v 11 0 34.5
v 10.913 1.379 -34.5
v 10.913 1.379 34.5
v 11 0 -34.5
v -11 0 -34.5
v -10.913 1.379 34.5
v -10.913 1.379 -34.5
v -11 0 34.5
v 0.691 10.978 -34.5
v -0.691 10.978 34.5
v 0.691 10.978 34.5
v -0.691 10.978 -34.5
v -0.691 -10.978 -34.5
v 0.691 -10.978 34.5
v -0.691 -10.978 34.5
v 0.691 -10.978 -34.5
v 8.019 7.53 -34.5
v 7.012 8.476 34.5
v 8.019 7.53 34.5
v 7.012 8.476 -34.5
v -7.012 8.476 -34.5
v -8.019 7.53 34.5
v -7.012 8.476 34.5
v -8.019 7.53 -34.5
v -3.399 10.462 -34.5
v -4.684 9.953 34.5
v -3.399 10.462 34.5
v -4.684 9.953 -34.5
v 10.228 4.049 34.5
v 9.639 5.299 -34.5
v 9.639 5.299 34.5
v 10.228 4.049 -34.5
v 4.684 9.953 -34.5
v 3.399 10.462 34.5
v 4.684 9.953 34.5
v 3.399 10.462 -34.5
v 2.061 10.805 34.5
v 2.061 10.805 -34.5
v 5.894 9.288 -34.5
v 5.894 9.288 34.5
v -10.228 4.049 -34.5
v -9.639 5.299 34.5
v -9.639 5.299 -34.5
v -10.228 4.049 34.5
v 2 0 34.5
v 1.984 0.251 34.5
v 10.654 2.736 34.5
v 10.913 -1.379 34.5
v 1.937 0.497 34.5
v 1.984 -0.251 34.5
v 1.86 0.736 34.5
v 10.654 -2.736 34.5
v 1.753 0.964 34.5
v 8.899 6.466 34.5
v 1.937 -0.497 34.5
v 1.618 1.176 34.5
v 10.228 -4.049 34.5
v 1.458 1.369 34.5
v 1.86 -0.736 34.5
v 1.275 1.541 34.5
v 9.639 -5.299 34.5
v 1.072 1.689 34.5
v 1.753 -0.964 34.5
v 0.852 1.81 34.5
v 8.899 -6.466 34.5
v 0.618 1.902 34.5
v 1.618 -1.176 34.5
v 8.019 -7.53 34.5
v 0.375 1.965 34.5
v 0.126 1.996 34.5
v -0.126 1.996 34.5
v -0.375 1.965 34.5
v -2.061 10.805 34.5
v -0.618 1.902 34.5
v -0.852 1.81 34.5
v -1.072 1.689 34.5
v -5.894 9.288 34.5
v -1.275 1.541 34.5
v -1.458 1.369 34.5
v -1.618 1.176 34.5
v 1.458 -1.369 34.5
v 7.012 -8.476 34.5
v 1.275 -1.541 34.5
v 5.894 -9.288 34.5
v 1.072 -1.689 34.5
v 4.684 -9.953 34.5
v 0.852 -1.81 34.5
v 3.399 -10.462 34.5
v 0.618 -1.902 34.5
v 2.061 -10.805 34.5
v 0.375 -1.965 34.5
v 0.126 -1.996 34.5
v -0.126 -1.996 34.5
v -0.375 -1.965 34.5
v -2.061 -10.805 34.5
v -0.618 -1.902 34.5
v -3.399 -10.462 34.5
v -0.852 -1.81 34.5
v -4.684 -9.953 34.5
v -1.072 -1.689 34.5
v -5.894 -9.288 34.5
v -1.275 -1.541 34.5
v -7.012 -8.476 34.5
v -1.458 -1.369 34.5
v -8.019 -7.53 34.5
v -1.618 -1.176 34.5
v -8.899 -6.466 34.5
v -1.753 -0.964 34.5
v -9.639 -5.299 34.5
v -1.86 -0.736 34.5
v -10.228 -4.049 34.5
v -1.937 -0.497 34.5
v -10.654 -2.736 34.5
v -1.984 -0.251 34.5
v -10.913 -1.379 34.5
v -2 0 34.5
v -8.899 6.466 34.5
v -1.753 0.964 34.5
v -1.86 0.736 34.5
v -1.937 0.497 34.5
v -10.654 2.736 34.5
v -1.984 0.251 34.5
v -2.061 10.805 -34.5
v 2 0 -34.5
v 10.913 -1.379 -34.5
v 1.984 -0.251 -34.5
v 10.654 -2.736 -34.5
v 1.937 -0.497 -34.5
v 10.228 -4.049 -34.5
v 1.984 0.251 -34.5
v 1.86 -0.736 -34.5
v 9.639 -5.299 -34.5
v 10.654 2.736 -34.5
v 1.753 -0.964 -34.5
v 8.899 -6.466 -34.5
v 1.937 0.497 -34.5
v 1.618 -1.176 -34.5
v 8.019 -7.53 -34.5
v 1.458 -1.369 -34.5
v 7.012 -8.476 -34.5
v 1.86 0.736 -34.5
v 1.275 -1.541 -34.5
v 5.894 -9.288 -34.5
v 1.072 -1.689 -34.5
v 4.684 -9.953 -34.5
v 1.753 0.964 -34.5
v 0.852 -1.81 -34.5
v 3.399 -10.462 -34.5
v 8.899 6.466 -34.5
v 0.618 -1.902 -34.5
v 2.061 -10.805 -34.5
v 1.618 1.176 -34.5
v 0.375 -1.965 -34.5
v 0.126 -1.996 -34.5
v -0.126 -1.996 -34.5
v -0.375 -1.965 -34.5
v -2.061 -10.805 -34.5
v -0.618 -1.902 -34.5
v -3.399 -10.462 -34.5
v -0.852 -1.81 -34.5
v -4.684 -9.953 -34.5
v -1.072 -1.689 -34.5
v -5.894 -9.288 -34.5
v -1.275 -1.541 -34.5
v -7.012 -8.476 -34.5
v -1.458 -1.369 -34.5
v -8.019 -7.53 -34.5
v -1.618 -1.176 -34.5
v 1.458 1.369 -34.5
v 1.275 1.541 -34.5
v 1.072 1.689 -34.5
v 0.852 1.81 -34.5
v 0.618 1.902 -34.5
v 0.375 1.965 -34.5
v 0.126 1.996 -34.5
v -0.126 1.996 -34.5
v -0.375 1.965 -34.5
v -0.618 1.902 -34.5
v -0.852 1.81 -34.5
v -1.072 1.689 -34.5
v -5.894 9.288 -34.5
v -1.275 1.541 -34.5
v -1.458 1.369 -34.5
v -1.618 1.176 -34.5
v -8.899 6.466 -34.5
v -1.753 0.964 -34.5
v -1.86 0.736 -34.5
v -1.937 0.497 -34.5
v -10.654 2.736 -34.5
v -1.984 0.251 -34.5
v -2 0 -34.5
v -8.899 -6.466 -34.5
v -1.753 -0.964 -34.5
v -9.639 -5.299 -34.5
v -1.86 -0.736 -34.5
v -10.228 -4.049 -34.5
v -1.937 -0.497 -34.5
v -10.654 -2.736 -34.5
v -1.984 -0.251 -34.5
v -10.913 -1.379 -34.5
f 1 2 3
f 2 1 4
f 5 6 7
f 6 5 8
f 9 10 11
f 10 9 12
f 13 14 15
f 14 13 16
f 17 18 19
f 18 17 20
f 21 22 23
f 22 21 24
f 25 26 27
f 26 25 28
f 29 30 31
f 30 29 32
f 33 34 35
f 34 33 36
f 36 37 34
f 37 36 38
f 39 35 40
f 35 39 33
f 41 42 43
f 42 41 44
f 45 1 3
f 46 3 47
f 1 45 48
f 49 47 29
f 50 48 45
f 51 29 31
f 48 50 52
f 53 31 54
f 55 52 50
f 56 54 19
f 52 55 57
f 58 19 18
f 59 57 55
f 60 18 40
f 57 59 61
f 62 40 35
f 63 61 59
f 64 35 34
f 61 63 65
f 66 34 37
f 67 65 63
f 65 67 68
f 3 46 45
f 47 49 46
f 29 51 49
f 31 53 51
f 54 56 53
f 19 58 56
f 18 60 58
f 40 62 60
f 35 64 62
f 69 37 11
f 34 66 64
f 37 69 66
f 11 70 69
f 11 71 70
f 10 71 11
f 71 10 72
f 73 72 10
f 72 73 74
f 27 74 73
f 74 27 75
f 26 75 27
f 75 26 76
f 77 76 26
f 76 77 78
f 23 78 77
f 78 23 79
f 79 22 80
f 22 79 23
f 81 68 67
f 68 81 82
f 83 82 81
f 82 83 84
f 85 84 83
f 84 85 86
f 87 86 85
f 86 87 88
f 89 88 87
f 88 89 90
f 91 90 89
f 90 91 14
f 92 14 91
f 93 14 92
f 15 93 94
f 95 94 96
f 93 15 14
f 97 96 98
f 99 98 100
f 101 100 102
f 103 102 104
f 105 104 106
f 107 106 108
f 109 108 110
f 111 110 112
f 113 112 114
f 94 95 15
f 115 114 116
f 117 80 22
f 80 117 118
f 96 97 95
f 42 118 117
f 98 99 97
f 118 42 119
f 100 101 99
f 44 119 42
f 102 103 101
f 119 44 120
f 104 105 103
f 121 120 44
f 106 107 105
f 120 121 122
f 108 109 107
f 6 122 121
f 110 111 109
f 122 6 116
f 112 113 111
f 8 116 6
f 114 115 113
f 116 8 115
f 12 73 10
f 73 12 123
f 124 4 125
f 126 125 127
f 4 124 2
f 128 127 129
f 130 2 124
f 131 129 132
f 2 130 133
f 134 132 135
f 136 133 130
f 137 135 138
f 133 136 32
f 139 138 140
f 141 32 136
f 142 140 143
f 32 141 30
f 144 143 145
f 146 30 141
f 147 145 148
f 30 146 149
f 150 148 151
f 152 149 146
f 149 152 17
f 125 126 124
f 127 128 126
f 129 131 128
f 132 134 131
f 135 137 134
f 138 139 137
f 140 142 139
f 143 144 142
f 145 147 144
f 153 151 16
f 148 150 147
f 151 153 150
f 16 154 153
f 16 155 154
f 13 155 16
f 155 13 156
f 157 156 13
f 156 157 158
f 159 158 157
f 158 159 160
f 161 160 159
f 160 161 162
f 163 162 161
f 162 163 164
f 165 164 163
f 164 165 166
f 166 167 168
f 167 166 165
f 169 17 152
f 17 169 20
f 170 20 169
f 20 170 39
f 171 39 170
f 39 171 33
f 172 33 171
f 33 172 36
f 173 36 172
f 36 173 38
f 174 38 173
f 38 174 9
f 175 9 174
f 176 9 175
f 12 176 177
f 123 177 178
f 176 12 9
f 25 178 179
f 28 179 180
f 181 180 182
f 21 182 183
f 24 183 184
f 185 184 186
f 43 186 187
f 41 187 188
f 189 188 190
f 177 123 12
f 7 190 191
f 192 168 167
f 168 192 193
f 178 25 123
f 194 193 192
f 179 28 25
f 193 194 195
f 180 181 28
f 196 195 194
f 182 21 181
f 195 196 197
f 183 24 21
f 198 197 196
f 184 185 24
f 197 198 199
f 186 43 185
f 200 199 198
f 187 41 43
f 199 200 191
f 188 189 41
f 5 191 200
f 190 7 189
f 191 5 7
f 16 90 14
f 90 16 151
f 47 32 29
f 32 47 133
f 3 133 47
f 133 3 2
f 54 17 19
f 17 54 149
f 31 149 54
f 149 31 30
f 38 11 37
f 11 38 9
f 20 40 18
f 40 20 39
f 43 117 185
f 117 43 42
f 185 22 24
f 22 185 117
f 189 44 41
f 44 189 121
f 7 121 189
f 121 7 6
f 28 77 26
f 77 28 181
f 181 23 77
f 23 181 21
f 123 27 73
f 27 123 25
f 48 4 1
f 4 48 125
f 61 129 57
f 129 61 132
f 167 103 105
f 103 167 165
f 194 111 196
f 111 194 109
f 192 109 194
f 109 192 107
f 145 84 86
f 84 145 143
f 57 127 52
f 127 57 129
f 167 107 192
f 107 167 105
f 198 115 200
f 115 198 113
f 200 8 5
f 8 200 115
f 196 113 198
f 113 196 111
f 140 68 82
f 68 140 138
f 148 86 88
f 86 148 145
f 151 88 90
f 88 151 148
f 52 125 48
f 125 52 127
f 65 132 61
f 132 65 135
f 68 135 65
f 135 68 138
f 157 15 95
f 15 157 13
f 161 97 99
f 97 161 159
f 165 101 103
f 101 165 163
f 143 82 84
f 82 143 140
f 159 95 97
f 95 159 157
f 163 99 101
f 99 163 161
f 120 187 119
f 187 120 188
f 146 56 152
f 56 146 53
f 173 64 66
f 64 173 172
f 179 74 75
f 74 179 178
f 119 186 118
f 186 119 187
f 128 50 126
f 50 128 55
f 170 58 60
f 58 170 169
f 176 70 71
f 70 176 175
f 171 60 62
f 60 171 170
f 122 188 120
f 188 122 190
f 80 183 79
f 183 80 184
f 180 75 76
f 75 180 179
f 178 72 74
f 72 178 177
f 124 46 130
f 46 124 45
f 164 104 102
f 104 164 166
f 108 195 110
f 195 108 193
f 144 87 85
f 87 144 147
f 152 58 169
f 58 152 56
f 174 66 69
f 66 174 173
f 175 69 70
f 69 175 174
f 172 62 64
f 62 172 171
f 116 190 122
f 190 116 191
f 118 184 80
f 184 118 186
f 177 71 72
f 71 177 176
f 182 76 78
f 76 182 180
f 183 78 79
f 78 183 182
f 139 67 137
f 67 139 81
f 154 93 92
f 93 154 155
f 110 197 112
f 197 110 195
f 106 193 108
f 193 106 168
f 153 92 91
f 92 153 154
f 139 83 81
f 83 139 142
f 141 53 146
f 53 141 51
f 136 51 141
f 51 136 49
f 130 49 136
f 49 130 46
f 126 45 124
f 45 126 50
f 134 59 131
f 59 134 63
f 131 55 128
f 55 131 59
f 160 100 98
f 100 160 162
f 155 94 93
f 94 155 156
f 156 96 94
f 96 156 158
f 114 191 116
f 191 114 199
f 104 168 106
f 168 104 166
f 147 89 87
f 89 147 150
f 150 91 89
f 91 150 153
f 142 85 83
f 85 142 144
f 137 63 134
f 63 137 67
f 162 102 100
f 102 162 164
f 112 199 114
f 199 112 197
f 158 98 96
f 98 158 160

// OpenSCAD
$fn = 50;


difference() {
	union() {
		translate(v = [0, 0, -34.5000000000]) {
			cylinder(h = 69, r = 11.0000000000);
		}
	}
	union() {
		translate(v = [0, 0, -100.0000000000]) {
			cylinder(h = 200, r = 2);
		}
	}
}
